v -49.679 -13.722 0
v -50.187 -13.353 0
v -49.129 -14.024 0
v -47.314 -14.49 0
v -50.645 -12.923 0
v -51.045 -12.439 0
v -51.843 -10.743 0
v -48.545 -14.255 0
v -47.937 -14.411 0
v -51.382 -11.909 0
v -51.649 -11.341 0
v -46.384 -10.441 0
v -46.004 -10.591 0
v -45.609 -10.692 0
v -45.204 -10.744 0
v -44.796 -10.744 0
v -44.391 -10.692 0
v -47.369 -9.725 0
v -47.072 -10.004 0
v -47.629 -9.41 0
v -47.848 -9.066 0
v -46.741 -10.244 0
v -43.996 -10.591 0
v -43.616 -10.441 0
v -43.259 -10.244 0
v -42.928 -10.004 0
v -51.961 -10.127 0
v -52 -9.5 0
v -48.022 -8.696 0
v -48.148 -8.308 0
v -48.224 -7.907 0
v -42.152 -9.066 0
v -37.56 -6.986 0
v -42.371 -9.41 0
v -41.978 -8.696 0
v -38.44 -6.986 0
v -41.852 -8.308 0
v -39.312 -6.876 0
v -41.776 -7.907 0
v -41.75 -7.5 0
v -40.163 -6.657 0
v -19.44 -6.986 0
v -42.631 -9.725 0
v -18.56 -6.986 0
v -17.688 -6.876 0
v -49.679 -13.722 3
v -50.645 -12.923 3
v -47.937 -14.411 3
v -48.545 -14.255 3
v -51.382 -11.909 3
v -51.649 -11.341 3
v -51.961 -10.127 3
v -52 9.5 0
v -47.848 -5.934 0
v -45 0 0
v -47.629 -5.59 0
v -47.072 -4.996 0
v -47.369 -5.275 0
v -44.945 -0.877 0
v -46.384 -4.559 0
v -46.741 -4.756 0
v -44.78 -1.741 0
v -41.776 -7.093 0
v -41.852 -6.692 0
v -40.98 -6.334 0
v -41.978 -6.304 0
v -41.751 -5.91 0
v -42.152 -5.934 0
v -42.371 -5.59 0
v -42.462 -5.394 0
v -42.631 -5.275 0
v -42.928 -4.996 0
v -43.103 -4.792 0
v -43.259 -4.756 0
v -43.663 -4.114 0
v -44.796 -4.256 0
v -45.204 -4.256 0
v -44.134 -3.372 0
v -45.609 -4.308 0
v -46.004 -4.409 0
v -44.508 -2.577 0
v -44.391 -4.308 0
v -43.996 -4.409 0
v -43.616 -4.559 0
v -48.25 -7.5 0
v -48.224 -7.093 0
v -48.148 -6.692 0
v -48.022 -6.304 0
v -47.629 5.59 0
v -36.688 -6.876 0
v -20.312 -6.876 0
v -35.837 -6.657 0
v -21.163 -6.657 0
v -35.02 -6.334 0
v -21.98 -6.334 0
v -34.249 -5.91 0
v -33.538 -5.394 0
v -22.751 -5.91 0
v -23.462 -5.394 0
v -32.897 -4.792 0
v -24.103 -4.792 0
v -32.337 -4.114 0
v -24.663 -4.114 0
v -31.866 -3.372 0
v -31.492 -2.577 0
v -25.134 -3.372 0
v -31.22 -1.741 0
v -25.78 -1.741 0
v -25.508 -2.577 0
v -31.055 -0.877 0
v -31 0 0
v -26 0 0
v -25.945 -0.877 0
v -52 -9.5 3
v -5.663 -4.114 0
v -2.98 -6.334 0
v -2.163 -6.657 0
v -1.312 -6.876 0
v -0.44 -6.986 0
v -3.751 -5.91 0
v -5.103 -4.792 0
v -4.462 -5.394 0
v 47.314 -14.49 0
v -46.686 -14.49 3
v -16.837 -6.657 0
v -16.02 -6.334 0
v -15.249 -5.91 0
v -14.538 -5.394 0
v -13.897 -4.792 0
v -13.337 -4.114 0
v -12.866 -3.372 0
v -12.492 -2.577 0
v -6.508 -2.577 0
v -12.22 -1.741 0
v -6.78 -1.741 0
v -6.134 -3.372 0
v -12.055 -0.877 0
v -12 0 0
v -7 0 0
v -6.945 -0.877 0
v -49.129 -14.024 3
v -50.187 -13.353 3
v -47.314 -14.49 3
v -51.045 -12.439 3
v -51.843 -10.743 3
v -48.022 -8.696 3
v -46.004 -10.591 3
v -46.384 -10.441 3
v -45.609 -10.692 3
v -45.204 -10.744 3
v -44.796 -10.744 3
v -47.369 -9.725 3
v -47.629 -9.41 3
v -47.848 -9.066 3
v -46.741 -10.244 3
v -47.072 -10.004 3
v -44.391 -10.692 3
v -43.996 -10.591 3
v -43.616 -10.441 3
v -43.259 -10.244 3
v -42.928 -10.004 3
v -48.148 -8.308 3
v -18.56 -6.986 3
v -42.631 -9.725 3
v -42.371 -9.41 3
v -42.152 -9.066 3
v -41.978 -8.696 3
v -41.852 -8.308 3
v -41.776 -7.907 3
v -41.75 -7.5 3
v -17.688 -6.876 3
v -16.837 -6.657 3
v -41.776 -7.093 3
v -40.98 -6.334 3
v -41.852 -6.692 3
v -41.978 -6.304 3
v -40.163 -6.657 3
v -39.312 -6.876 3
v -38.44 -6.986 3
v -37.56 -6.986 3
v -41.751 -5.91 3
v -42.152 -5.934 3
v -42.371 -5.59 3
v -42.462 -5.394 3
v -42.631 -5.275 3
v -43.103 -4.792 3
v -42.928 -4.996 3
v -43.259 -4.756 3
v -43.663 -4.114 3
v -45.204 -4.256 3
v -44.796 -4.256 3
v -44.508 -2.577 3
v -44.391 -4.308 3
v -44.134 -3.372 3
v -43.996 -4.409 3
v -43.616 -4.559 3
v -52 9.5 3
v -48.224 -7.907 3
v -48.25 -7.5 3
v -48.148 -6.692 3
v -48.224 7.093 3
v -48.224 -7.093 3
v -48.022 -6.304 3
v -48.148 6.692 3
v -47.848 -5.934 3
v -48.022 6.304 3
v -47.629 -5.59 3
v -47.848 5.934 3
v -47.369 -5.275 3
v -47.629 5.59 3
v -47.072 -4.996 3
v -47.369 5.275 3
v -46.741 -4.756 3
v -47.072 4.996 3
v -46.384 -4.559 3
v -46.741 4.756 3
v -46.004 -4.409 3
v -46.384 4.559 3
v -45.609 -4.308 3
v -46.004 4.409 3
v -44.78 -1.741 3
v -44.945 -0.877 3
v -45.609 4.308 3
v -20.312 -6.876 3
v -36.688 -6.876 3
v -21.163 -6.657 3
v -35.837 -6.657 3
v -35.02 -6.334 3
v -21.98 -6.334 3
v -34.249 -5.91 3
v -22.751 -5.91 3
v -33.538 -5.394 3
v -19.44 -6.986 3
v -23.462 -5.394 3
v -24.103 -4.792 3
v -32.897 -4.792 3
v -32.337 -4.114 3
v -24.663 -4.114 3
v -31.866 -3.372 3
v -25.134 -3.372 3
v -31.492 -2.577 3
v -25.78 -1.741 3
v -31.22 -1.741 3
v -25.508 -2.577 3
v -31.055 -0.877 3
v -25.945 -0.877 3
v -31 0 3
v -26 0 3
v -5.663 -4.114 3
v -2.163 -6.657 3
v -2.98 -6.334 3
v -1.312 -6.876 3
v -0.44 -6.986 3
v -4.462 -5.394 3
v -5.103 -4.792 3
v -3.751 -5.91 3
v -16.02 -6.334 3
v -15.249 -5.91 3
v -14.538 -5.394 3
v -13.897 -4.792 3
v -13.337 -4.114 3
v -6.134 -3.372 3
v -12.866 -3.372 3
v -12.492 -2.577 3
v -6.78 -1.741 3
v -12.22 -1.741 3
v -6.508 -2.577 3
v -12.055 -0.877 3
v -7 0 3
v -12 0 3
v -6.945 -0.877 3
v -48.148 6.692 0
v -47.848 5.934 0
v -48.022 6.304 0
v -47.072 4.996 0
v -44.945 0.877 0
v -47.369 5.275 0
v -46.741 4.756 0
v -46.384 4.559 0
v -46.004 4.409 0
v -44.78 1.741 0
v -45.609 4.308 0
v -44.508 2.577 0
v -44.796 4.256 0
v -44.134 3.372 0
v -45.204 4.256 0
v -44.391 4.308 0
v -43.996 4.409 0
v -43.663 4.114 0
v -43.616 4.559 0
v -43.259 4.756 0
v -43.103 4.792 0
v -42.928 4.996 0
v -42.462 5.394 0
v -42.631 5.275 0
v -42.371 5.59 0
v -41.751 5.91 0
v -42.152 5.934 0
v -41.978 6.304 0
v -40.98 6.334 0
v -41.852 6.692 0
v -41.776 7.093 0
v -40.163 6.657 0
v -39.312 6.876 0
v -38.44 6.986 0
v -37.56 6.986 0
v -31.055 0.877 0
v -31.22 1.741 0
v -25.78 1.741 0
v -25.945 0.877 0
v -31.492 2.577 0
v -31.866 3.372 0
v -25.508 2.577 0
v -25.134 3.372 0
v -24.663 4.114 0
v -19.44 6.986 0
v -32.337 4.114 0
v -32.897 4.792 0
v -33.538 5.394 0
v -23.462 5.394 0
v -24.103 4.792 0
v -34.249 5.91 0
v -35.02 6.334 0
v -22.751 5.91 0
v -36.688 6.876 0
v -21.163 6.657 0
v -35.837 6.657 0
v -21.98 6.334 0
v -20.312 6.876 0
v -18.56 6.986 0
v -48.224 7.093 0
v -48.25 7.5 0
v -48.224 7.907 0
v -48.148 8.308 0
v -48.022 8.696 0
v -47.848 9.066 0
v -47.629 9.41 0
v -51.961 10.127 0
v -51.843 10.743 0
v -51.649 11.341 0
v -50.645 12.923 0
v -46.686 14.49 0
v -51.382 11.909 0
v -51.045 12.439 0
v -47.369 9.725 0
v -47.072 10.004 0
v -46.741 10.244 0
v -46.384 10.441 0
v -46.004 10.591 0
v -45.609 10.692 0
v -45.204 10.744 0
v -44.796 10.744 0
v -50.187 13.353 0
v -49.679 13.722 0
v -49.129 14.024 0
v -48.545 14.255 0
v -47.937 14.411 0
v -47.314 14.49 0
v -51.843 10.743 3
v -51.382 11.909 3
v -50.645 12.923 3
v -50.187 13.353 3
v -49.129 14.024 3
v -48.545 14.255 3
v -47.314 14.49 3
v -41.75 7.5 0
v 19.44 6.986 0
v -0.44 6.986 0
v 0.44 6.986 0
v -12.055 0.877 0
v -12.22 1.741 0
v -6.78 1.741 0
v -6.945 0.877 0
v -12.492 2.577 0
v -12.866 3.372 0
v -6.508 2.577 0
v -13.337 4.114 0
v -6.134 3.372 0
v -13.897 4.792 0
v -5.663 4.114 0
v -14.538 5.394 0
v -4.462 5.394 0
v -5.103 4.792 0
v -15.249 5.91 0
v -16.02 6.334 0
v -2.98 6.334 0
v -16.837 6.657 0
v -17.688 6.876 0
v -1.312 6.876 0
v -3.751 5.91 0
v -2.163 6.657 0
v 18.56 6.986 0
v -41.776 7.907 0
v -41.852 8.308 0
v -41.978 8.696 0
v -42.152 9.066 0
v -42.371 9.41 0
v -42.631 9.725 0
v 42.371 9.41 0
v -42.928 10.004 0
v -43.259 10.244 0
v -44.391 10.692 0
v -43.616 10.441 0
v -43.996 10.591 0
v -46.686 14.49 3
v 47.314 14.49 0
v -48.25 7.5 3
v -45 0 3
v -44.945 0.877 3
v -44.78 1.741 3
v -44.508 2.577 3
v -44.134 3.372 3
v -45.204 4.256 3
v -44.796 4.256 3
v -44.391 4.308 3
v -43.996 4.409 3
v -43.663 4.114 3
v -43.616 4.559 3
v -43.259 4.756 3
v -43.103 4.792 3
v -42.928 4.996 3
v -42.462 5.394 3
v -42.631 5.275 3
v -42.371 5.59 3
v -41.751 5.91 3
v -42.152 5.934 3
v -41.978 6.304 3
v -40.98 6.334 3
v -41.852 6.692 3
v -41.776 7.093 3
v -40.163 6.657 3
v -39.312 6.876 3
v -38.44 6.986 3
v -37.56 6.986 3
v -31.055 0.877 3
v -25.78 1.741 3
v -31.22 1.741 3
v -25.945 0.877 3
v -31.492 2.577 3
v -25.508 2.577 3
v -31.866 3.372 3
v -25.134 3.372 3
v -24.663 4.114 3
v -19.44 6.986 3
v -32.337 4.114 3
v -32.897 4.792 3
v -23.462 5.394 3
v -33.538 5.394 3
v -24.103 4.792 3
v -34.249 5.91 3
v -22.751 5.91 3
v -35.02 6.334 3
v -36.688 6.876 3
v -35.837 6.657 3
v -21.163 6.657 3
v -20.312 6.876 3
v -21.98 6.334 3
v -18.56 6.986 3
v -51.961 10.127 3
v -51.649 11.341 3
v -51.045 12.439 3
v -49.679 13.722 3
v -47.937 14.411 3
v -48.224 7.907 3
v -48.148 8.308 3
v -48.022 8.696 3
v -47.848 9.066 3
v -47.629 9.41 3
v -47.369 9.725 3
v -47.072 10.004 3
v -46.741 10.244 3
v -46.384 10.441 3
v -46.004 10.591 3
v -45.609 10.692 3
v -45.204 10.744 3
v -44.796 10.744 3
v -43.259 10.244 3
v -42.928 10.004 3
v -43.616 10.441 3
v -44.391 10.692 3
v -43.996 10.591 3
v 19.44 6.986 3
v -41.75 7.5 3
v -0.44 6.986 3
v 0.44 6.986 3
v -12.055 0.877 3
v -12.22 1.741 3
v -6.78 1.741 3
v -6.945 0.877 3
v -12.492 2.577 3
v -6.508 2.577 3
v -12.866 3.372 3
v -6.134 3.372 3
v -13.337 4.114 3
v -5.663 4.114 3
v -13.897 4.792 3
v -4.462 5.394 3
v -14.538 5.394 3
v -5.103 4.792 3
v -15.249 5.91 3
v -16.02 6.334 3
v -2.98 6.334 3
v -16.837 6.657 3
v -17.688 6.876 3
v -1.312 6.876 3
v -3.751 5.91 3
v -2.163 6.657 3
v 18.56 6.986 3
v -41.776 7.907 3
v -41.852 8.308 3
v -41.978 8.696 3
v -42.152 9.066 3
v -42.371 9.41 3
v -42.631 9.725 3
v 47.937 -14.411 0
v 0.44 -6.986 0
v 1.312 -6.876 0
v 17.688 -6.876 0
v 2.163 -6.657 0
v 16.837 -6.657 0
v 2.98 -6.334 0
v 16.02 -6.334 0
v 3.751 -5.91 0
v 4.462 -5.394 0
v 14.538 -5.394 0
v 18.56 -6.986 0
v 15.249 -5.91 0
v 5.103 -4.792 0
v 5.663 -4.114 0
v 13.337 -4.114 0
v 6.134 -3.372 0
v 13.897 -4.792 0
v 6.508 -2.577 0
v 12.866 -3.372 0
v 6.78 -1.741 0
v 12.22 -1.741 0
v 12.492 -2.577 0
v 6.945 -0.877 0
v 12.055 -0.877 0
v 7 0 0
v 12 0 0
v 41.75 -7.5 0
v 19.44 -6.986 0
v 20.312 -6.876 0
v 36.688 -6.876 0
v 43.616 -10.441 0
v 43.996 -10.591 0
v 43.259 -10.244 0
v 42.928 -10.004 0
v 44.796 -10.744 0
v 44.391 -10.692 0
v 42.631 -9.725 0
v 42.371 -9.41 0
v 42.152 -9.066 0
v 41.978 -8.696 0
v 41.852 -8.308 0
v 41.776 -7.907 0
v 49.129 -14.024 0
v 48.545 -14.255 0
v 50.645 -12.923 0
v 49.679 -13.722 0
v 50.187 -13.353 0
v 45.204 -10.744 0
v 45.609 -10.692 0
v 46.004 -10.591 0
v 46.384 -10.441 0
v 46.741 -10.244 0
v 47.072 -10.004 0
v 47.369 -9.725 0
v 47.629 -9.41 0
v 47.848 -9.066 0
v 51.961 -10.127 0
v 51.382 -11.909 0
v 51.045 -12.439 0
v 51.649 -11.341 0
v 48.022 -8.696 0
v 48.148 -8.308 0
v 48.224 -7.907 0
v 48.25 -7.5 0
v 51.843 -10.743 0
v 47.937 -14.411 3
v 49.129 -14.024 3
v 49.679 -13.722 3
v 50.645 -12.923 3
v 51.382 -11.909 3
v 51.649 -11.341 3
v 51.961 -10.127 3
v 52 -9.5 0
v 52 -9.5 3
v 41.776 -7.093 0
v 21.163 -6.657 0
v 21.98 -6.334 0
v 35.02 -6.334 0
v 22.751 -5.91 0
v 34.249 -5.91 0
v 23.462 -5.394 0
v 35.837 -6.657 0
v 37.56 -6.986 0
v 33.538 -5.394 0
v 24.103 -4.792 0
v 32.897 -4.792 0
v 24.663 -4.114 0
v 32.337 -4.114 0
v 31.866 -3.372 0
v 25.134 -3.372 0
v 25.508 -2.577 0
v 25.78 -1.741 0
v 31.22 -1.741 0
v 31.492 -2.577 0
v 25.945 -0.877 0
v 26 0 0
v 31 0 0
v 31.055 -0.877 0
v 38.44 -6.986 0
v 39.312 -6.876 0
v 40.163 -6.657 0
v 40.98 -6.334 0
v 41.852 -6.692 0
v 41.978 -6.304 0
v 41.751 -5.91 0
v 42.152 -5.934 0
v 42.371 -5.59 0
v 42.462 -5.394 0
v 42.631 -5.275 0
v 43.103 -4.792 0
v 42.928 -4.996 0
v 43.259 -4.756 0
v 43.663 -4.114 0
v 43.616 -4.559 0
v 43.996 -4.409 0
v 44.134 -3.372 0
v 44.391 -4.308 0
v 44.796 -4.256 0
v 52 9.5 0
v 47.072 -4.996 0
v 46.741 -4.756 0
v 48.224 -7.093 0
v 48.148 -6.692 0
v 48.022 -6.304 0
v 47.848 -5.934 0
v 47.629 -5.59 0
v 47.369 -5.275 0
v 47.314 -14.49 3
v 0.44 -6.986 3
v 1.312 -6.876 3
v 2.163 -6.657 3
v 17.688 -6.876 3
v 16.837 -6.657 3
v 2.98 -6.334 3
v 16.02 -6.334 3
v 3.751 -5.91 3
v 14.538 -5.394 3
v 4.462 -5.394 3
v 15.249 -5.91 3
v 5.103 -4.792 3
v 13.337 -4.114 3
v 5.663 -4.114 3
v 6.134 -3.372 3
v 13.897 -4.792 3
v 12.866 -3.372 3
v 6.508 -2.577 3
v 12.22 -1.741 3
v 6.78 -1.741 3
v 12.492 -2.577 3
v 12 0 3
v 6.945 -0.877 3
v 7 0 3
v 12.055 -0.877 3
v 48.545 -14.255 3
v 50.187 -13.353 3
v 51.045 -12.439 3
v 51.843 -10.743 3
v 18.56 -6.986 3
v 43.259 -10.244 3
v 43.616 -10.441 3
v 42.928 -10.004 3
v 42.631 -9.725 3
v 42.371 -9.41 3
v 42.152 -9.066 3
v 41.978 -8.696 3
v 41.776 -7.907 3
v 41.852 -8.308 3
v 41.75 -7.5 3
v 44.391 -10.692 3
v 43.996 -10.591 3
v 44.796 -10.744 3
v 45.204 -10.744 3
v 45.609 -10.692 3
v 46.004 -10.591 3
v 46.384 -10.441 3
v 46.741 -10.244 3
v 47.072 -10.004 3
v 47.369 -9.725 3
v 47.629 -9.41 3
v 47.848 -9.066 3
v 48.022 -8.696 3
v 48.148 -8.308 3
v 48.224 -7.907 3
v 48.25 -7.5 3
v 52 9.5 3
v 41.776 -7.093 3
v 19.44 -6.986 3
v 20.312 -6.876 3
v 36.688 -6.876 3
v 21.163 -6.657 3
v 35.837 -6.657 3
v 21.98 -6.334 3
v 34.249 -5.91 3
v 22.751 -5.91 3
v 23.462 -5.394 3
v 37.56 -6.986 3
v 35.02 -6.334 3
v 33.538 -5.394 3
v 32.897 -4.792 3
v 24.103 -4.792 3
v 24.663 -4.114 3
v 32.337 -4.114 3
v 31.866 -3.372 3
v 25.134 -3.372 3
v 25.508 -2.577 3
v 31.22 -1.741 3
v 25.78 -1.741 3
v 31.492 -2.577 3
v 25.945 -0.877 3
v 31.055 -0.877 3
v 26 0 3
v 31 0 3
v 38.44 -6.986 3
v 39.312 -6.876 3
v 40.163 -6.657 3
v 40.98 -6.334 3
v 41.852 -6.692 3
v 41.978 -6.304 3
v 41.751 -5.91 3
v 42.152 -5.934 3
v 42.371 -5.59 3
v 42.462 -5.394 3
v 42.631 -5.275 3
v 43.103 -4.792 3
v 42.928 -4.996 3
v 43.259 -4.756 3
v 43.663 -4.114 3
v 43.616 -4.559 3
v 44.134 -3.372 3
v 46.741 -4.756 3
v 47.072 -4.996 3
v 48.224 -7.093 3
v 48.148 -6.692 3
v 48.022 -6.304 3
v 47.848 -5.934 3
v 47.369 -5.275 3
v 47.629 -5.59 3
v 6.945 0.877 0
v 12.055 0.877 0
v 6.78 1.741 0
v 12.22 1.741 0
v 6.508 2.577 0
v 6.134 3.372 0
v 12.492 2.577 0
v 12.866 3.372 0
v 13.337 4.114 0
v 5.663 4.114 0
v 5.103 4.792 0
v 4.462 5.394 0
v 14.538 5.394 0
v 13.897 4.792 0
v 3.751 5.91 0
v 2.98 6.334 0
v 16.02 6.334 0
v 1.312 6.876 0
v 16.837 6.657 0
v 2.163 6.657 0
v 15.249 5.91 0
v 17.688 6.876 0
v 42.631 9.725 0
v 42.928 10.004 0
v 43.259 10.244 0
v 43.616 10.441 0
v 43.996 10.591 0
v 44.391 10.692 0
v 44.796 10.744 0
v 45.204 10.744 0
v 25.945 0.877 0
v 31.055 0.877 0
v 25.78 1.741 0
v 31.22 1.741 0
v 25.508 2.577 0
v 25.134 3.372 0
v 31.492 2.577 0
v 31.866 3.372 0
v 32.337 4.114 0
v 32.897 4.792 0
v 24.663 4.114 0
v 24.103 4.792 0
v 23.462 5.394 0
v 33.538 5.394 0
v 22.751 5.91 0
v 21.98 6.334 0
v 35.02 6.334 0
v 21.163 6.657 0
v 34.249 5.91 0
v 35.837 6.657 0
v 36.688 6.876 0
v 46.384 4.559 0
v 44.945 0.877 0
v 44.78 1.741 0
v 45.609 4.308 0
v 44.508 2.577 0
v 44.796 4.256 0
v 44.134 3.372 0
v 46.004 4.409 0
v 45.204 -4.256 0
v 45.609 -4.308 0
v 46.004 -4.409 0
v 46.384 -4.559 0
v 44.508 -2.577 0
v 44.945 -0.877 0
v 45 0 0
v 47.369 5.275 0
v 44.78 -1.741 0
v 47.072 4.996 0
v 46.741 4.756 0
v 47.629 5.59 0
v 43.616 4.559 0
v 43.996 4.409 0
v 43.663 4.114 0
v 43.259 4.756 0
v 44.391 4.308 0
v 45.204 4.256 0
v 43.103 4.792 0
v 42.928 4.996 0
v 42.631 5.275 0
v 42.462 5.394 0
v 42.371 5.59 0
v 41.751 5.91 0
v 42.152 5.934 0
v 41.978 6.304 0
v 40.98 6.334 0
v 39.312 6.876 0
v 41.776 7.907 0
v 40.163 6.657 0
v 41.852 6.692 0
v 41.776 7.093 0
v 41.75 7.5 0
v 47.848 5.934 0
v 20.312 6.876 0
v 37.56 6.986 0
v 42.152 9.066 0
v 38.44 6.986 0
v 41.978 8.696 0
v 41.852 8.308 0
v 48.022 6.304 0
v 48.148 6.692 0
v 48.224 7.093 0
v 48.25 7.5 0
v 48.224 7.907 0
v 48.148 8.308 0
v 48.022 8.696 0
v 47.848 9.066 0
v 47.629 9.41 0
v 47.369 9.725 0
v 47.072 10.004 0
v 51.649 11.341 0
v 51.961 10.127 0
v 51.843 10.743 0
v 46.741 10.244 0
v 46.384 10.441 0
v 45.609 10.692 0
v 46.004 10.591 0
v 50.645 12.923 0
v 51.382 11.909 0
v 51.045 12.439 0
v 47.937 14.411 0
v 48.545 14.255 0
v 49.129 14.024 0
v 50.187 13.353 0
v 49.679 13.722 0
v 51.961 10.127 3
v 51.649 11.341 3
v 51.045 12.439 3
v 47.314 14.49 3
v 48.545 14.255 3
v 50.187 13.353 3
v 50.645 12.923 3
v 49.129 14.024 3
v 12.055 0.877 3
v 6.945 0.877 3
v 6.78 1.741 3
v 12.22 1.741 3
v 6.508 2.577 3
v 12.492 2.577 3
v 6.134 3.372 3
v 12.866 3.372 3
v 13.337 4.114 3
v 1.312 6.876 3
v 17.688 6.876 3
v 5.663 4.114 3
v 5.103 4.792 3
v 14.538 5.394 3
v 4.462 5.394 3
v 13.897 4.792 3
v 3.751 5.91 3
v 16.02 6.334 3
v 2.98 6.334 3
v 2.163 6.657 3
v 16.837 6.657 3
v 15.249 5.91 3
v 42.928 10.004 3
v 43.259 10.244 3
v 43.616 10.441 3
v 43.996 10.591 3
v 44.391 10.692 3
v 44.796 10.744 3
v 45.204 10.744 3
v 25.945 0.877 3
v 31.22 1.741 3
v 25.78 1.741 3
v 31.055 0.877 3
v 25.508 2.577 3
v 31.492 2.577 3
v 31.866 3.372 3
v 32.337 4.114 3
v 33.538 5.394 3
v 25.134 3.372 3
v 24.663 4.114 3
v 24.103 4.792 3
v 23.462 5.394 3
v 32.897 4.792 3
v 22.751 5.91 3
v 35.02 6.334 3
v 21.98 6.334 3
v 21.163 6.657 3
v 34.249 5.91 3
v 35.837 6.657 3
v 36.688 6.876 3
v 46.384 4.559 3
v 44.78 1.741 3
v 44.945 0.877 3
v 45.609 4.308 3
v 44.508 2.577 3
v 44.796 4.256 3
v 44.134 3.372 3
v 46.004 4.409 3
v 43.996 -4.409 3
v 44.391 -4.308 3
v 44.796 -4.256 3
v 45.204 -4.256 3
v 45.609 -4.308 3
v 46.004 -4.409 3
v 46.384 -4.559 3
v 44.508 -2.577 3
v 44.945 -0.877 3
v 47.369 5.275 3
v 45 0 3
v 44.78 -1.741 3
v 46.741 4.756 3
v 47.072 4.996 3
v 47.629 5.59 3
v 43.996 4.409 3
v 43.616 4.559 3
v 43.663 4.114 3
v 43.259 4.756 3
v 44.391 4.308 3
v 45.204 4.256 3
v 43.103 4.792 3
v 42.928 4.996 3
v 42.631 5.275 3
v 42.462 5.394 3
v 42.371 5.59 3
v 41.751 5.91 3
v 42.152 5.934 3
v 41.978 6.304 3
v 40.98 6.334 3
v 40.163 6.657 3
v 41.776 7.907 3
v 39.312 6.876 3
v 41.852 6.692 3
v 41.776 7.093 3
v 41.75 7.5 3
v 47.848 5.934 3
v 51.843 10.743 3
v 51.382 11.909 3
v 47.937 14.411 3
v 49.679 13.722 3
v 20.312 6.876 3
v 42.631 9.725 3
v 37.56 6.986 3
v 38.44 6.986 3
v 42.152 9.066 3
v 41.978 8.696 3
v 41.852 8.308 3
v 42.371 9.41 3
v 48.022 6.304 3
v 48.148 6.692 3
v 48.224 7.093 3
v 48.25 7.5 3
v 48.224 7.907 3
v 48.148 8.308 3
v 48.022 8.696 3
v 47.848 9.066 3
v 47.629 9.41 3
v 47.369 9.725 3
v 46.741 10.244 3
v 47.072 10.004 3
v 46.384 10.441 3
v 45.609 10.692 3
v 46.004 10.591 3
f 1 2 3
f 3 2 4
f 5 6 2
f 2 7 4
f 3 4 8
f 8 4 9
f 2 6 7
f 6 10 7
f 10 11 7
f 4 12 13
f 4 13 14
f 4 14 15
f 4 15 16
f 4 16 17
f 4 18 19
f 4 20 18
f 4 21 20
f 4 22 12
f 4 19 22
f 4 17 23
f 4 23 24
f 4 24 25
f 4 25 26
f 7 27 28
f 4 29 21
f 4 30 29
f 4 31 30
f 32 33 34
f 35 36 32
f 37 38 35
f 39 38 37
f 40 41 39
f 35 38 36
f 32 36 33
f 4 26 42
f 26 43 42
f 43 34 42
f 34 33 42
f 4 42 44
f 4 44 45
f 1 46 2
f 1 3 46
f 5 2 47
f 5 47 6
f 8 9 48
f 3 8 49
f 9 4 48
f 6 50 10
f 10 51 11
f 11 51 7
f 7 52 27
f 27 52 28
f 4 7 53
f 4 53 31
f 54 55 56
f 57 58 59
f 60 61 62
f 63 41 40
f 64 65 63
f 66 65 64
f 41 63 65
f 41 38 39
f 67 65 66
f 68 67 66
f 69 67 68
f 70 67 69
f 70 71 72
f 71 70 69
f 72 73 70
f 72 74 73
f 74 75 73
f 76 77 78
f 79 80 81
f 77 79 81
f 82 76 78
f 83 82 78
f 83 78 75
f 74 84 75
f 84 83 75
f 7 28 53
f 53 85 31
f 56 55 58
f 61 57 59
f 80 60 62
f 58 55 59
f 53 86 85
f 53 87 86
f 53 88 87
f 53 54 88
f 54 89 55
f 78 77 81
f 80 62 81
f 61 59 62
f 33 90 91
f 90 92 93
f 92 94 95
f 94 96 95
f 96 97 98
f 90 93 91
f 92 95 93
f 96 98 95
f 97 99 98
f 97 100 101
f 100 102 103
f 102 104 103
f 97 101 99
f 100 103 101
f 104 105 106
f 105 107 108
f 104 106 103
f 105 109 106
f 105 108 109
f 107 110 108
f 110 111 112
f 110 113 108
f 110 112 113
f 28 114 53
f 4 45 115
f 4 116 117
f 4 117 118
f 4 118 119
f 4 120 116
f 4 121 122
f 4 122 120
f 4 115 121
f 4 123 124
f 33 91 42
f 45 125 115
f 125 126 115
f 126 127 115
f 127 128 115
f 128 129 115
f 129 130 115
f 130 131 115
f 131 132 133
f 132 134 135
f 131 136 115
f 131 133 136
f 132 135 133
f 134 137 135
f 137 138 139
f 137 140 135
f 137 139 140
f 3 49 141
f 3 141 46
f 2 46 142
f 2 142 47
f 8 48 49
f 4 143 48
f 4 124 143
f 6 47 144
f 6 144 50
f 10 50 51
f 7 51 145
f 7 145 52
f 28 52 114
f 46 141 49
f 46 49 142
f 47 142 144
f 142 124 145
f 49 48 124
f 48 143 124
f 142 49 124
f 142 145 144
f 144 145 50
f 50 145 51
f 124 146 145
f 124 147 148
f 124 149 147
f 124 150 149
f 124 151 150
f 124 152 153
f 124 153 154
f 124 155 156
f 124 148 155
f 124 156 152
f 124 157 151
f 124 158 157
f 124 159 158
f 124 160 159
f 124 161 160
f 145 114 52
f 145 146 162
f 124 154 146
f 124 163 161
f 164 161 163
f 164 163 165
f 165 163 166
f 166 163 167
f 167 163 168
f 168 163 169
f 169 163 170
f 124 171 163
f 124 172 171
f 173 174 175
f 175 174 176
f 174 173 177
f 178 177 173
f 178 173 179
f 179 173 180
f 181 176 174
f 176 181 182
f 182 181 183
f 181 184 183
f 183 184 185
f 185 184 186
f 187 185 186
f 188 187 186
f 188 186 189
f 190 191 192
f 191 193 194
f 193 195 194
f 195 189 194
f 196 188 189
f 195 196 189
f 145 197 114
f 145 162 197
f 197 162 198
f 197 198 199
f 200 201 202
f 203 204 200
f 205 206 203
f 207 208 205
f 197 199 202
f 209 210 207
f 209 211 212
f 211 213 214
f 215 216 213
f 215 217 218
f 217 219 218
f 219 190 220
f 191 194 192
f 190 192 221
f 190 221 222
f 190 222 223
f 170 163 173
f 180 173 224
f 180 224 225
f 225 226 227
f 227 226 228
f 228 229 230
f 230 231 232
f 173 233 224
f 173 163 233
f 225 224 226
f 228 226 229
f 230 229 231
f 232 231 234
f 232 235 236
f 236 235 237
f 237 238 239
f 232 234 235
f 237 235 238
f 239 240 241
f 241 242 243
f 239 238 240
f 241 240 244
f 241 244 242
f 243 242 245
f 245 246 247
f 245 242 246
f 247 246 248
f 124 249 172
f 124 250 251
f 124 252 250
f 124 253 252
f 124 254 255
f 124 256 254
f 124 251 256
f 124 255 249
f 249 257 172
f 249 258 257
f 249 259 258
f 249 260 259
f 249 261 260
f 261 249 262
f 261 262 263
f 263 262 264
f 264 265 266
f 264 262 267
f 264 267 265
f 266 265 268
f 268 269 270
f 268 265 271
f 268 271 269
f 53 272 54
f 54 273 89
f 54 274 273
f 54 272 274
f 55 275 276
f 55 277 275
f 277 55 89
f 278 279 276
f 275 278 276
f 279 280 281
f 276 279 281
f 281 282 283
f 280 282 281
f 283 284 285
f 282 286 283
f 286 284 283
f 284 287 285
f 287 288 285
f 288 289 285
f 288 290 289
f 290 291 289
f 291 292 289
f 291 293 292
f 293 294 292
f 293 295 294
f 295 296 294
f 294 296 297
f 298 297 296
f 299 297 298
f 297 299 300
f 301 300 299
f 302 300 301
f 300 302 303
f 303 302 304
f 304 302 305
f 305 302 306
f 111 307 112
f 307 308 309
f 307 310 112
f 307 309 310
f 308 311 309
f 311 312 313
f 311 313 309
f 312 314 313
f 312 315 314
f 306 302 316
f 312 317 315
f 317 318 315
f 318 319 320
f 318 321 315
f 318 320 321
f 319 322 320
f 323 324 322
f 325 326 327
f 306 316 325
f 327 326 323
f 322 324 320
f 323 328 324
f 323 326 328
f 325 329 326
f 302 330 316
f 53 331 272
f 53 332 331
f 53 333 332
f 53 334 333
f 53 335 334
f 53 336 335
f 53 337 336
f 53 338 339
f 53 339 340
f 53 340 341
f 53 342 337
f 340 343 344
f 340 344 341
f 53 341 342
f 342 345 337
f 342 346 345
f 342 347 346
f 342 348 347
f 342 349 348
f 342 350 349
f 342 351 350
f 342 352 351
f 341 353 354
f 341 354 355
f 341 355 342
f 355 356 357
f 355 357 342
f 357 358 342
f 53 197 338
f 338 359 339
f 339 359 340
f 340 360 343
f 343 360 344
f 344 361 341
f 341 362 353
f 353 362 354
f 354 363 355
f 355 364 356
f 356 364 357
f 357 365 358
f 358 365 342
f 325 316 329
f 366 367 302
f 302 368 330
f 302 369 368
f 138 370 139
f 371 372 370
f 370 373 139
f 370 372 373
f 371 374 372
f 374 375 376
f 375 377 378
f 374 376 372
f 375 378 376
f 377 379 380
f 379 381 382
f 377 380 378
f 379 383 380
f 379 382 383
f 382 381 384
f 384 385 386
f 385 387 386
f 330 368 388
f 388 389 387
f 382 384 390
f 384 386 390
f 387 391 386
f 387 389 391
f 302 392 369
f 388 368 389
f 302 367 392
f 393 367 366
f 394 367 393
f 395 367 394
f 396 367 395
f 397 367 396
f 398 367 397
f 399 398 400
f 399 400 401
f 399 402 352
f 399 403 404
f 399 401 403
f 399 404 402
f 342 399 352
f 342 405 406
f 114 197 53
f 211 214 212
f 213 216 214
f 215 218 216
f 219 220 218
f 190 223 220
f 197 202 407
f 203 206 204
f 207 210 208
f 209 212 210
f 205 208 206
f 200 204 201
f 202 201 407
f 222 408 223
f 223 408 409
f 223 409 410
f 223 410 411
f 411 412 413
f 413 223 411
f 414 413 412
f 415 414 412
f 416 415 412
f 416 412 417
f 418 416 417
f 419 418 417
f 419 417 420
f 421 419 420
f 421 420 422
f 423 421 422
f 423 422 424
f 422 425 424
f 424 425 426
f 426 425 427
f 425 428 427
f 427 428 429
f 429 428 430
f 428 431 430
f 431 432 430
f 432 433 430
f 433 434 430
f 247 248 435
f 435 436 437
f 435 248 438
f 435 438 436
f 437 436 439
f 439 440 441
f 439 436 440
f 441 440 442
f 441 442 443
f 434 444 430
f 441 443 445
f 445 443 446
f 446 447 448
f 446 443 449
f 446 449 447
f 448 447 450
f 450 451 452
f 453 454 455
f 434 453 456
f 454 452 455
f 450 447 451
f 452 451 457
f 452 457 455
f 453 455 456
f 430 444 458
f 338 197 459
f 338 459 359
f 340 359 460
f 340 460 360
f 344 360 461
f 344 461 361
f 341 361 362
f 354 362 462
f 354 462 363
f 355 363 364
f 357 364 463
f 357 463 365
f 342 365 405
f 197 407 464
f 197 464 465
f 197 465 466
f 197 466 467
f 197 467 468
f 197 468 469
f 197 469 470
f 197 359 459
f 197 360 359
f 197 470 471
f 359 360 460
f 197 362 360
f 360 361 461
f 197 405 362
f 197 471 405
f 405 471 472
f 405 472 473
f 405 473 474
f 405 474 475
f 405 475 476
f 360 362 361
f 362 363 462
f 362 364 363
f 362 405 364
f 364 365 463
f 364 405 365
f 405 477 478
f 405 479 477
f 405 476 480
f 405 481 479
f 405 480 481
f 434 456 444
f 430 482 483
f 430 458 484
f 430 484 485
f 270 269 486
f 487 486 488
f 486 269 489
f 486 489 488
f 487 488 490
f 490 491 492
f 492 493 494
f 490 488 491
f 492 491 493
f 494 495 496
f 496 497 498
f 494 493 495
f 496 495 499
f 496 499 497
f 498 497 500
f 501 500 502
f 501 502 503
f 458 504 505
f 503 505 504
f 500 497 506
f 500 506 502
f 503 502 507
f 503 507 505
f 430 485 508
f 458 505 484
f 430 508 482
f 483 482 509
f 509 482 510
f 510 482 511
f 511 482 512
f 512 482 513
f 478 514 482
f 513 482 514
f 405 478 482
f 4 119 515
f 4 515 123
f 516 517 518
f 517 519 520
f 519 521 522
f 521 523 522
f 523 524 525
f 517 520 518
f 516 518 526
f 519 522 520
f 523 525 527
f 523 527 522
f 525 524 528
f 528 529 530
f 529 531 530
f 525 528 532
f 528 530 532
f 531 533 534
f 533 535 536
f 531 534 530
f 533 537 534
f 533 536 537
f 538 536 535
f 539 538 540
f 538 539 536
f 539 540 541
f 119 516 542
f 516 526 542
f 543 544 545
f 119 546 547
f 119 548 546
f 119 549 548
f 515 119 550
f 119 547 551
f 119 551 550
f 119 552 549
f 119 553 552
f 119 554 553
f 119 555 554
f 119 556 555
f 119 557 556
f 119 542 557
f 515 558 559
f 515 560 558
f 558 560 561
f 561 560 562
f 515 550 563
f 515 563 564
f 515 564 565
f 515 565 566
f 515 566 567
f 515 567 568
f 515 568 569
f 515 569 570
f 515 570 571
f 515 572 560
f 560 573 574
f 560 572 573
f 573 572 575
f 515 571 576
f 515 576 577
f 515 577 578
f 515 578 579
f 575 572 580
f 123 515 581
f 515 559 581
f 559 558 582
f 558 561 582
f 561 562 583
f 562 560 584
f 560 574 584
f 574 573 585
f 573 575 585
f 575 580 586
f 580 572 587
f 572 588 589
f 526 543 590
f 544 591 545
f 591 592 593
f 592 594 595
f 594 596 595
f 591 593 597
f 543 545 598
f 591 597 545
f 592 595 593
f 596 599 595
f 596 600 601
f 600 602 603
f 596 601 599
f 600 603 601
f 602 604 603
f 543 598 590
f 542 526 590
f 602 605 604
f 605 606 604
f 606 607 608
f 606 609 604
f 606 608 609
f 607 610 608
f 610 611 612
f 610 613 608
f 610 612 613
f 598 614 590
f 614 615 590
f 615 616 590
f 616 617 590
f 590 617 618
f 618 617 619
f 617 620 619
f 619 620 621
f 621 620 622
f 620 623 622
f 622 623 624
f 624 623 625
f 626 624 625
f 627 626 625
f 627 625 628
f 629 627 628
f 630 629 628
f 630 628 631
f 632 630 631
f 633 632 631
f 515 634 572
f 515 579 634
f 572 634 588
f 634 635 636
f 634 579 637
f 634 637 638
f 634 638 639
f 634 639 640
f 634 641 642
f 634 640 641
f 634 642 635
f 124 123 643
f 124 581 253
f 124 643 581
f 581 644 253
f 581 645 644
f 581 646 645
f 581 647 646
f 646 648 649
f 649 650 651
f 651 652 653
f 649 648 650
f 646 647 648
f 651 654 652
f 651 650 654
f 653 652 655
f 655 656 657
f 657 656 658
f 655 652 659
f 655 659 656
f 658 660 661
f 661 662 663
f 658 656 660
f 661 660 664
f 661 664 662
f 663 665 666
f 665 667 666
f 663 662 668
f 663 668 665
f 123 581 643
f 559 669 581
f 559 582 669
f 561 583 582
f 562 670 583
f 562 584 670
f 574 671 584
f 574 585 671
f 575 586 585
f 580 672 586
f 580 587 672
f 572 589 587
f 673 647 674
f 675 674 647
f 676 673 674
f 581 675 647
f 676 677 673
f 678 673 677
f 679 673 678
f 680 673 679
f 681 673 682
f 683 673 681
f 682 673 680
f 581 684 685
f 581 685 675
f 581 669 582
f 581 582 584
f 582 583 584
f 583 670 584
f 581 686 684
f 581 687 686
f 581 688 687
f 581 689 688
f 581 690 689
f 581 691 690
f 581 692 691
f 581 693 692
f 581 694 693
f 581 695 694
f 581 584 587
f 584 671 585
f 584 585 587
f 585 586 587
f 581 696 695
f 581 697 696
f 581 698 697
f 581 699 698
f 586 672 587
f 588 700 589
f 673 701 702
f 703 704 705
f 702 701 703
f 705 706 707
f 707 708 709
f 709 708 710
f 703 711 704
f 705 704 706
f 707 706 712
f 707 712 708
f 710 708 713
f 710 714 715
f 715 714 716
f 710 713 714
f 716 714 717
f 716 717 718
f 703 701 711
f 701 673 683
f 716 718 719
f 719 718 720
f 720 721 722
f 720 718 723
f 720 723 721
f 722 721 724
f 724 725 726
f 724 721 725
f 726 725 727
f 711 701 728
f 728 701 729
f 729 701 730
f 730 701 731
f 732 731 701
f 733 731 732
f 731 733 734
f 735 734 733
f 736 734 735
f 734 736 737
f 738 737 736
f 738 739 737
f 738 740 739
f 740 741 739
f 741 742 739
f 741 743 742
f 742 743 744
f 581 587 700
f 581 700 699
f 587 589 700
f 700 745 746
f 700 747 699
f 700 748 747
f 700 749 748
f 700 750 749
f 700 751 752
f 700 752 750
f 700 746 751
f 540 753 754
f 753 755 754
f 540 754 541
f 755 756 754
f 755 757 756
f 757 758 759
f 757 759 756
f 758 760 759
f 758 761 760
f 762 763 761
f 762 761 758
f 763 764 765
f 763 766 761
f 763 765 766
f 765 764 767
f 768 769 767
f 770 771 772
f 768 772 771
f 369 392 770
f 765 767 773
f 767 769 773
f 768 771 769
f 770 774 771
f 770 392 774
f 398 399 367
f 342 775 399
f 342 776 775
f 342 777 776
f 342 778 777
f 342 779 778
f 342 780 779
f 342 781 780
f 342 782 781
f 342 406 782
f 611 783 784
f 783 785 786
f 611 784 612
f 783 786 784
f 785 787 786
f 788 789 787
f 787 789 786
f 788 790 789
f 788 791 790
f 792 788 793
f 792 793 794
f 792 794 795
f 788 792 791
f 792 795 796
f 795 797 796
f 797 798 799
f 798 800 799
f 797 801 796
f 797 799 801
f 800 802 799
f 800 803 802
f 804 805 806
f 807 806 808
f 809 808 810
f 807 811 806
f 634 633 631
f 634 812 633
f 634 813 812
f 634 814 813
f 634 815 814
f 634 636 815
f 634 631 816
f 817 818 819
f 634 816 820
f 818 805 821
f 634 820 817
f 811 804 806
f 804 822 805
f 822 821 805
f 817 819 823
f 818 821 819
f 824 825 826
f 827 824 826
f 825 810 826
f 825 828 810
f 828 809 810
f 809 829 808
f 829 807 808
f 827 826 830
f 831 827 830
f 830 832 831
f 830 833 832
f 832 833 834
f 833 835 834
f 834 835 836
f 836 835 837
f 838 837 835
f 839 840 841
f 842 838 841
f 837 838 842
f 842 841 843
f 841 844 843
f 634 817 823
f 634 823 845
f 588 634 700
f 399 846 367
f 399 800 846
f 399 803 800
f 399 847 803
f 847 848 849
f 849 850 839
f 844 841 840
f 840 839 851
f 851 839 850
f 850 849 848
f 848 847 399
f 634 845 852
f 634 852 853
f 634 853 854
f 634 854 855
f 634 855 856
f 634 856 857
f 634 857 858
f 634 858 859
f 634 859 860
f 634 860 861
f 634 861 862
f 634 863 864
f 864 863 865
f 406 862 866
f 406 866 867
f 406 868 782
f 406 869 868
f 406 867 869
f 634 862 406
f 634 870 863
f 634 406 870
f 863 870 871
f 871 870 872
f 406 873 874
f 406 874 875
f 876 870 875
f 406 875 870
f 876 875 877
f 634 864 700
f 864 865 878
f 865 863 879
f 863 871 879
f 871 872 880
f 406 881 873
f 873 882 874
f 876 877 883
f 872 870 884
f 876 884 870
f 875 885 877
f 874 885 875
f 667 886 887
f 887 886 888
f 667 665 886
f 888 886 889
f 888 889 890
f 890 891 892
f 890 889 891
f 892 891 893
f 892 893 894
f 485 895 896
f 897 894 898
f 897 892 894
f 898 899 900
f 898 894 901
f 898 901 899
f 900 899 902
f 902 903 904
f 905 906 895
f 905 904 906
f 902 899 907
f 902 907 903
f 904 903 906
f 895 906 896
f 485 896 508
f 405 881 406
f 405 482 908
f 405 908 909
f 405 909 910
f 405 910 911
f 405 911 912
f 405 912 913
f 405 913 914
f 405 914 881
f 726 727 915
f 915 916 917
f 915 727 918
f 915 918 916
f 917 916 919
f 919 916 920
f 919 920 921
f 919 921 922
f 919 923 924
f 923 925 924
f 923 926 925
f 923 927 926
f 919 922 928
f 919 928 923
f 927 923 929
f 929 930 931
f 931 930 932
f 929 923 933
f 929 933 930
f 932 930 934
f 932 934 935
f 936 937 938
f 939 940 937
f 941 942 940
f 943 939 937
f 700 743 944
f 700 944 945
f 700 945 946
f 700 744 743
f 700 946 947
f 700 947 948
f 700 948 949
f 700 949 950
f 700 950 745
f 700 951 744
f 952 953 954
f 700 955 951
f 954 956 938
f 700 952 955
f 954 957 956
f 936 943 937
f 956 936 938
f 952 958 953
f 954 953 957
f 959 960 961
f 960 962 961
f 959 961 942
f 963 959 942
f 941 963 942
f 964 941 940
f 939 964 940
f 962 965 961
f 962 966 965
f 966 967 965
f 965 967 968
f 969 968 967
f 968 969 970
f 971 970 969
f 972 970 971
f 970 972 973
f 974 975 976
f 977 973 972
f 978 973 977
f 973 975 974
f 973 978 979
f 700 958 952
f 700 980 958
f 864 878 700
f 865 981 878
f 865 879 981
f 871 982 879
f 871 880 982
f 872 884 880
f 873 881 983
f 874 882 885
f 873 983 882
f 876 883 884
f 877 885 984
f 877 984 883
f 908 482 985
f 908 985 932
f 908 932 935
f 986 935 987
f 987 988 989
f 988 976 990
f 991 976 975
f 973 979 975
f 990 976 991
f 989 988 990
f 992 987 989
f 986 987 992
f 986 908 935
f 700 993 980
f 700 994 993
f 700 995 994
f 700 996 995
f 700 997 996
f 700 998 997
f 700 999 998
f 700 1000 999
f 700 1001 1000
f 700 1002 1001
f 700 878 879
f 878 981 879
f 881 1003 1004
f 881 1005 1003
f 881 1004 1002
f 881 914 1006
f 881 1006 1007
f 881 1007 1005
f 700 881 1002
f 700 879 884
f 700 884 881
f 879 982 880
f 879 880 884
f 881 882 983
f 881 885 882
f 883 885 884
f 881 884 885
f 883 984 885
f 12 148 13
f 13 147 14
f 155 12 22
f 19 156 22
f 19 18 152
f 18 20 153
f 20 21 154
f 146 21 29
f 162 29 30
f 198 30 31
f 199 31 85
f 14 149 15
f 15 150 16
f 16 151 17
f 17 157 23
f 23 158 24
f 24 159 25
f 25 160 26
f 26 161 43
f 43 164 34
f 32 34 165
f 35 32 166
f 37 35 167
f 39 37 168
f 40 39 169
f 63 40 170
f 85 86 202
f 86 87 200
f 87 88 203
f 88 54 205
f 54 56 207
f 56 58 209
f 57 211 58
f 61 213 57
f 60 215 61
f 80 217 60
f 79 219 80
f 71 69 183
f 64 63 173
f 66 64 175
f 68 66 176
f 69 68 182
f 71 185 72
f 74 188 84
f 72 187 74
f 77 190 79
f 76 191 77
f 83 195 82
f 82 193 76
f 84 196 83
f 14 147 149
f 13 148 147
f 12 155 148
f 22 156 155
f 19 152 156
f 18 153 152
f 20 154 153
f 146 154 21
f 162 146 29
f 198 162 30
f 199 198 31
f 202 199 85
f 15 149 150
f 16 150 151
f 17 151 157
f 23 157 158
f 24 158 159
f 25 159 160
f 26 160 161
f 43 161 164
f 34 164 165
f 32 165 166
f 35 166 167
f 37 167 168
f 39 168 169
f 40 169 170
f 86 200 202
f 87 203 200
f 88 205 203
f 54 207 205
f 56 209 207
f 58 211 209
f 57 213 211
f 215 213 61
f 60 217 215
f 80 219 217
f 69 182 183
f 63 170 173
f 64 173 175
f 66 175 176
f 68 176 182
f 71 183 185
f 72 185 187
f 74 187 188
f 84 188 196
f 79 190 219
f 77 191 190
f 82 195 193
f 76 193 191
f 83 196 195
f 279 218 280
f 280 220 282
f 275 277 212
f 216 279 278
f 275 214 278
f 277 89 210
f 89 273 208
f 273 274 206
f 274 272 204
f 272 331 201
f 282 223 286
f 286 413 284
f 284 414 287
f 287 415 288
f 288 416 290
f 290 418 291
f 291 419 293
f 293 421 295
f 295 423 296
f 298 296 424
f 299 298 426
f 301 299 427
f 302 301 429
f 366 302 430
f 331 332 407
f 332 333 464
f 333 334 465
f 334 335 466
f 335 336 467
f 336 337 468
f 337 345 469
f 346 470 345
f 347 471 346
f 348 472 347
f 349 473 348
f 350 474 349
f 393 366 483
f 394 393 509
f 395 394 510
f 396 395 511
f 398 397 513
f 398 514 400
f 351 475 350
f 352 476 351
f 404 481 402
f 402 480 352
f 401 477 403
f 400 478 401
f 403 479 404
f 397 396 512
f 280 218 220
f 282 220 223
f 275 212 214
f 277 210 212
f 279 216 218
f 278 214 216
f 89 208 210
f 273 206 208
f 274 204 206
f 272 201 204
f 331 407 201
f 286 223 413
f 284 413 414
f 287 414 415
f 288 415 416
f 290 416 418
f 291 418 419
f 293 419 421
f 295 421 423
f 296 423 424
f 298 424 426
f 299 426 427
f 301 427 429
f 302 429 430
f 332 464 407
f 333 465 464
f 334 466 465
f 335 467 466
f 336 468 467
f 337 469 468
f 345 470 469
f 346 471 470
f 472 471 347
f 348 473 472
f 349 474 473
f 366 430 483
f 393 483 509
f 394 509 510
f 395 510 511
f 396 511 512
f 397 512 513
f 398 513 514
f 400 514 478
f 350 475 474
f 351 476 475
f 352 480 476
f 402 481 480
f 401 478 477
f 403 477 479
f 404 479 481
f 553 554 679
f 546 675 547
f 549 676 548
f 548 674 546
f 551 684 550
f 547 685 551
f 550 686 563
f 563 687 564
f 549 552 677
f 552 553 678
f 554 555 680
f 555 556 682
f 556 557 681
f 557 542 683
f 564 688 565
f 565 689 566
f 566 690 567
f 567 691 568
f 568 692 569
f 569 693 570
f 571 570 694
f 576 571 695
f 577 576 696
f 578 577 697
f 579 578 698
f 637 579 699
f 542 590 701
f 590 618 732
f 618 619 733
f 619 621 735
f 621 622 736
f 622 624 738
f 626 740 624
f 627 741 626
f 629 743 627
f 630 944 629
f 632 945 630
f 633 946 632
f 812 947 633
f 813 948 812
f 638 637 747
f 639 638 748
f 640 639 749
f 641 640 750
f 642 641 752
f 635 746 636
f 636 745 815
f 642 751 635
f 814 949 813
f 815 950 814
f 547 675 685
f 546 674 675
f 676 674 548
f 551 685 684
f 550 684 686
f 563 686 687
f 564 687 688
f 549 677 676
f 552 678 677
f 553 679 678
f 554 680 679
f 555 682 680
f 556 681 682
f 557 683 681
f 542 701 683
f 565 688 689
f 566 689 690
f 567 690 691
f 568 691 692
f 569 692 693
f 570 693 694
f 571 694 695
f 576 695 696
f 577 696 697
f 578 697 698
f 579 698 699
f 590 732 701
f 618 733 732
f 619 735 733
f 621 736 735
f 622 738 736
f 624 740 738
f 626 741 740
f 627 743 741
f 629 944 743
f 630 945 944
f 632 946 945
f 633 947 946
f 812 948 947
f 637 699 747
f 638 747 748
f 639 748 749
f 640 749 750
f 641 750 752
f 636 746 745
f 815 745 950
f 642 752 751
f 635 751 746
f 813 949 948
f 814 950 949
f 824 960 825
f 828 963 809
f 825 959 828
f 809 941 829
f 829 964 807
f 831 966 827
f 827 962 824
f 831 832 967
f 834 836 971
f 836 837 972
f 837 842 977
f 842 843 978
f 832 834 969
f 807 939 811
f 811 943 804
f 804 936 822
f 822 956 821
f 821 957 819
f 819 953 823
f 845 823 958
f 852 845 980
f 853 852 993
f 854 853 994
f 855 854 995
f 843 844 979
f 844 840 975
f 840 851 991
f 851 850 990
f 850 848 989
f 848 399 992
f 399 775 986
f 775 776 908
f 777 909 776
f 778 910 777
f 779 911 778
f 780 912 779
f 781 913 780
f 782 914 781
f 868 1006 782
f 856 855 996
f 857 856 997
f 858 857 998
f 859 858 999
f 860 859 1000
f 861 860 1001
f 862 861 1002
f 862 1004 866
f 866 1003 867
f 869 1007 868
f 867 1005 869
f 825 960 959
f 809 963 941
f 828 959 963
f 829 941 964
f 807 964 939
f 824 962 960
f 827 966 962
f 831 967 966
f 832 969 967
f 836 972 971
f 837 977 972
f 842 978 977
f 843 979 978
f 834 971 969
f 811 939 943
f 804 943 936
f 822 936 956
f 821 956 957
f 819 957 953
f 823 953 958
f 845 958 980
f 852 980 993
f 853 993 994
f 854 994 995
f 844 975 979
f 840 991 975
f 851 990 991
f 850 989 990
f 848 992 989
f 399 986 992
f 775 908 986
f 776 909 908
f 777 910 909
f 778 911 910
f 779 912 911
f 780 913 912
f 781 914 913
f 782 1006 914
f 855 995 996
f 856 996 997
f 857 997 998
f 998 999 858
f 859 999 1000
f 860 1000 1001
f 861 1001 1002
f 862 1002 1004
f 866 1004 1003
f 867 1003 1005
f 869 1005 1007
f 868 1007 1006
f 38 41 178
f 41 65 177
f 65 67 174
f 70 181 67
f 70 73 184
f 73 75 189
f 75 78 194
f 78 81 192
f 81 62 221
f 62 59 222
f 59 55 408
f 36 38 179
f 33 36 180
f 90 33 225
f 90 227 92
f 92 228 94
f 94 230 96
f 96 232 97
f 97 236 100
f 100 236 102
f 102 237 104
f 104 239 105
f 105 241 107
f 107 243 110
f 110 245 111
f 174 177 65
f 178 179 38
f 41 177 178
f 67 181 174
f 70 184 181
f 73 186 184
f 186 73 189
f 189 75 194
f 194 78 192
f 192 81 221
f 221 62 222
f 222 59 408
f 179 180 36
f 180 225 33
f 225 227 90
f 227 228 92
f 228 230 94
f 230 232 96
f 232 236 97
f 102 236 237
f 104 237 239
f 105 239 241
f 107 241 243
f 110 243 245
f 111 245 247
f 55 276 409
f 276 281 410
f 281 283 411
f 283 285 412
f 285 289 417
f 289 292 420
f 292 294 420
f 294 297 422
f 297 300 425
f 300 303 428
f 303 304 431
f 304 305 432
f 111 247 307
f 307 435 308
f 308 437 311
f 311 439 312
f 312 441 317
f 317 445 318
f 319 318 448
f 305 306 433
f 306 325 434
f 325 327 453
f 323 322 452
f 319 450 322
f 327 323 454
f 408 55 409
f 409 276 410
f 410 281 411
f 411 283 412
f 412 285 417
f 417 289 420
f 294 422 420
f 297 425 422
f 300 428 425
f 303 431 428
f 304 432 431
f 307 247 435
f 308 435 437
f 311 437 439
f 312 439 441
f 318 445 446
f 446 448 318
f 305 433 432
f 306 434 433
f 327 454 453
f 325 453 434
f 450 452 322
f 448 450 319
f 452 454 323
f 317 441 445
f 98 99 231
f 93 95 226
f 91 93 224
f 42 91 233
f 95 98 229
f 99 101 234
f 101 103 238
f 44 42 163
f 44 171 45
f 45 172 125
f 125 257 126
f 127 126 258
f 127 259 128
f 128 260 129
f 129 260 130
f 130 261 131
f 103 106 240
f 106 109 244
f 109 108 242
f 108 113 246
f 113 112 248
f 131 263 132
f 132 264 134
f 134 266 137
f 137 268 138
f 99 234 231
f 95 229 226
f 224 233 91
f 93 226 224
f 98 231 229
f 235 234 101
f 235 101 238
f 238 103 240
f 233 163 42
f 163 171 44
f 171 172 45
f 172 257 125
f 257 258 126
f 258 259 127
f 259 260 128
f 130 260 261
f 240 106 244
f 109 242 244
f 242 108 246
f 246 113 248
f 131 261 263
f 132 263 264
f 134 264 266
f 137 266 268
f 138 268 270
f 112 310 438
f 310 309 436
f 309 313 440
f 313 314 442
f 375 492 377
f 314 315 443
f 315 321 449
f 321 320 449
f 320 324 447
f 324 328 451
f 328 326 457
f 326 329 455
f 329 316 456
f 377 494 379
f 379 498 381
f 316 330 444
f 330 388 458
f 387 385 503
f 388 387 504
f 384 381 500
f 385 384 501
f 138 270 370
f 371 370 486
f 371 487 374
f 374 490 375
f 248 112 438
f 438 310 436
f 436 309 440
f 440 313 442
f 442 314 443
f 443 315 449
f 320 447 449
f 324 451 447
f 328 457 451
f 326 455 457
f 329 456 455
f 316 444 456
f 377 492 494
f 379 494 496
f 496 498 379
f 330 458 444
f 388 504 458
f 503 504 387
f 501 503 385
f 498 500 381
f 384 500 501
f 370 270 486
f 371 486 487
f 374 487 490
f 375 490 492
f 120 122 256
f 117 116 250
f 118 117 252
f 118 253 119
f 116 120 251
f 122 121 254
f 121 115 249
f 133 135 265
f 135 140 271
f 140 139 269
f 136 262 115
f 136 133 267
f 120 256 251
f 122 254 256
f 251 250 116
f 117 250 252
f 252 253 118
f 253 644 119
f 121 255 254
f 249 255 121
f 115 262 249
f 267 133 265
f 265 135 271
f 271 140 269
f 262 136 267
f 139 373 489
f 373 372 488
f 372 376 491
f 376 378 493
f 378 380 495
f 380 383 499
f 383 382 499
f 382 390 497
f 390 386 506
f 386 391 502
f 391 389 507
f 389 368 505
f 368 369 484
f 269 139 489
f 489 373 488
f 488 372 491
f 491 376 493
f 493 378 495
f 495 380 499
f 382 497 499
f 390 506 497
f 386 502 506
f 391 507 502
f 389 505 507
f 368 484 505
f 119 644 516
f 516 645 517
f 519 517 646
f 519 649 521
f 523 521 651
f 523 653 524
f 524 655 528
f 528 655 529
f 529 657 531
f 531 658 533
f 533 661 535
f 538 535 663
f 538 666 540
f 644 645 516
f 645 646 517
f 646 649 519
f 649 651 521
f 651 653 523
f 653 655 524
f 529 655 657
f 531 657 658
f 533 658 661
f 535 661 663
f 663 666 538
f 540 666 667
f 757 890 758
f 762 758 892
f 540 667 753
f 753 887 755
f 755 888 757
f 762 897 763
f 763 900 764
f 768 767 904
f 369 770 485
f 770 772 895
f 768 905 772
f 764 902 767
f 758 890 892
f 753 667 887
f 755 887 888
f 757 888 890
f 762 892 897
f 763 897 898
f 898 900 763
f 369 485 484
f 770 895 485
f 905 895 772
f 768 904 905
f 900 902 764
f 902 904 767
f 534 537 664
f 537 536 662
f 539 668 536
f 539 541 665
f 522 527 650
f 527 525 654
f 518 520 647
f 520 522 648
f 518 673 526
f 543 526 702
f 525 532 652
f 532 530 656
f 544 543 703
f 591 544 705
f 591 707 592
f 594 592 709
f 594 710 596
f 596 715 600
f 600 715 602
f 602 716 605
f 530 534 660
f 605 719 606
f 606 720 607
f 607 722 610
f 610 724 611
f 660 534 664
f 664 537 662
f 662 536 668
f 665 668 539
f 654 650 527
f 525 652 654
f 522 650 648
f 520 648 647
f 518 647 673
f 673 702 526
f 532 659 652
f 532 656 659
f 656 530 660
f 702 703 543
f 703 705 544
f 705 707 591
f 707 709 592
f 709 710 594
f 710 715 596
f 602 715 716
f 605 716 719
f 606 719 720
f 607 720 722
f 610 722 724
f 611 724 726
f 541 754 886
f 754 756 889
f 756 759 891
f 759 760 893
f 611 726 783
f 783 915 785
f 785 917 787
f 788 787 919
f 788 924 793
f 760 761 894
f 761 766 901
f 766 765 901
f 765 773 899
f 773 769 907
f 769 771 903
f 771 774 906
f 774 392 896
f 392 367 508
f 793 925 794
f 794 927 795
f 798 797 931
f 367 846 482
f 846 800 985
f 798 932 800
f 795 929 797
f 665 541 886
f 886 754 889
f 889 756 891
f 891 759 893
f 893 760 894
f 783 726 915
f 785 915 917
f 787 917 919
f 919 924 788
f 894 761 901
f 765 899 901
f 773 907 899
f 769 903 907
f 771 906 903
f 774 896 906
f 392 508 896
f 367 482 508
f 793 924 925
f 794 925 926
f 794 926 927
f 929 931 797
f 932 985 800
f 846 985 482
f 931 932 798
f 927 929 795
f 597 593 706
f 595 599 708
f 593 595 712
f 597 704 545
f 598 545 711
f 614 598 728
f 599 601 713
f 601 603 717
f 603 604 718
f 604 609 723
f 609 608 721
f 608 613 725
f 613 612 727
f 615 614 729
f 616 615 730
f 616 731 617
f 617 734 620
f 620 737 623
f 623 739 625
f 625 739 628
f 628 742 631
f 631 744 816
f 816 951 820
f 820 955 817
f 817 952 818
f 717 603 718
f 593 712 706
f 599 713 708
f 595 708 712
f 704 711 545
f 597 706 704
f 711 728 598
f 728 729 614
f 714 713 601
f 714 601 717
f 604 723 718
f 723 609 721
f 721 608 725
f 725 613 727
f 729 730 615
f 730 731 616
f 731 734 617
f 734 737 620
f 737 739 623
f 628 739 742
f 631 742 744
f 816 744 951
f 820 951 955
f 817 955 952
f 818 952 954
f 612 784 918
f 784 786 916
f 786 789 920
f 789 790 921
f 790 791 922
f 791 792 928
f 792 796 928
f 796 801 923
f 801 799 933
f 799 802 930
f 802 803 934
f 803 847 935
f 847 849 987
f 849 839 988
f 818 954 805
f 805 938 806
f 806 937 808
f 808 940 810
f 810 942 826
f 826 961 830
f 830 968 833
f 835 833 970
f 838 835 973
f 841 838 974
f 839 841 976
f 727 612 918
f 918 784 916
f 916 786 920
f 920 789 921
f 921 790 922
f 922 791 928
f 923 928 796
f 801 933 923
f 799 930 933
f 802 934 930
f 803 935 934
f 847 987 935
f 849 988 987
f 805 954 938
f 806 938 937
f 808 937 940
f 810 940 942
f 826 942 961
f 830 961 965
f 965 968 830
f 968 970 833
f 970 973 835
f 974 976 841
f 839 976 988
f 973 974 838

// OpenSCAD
$fn = 50;

difference() {
	union() {
		hull() {
			translate(v = [-47.0, 9.5, 0]) {
				cylinder(h = 3, r = 5);
			}
			translate(v = [47.0, 9.5, 0]) {
				cylinder(h = 3, r = 5);
			}
			translate(v = [-47.0, -9.5, 0]) {
				cylinder(h = 3, r = 5);
			}
			translate(v = [47.0, -9.5, 0]) {
				cylinder(h = 3, r = 5);
			}
		}
	}
	union() {
		translate(v = [-45.0, -7.5, -100.0]) {
			cylinder(h = 200, r = 3.25);
		}
		translate(v = [-45.0, 7.5, -100.0]) {
			cylinder(h = 200, r = 3.25);
		}
		translate(v = [45.0, -7.5, -100.0]) {
			cylinder(h = 200, r = 3.25);
		}
		translate(v = [45.0, 7.5, -100.0]) {
			cylinder(h = 200, r = 3.25);
		}
		translate(v = [-45.0, -7.5, -100.0]) {
			cylinder(h = 200, r = 1.8);
		}
		translate(v = [-45.0, 7.5, -100.0]) {
			cylinder(h = 200, r = 1.8);
		}
		translate(v = [45.0, -7.5, -100.0]) {
			cylinder(h = 200, r = 1.8);
		}
		translate(v = [45.0, 7.5, -100.0]) {
			cylinder(h = 200, r = 1.8);
		}
		translate(v = [-38.0, 0, 0.0]) {
			cylinder(h = 3, r = 7.0);
		}
		translate(v = [-19.0, 0, 0.0]) {
			cylinder(h = 3, r = 7.0);
		}
		cylinder(h = 3, r = 7.0);
		translate(v = [19.0, 0, 0.0]) {
			cylinder(h = 3, r = 7.0);
		}
		translate(v = [38.0, 0, 0.0]) {
			cylinder(h = 3, r = 7.0);
		}
	}
}
